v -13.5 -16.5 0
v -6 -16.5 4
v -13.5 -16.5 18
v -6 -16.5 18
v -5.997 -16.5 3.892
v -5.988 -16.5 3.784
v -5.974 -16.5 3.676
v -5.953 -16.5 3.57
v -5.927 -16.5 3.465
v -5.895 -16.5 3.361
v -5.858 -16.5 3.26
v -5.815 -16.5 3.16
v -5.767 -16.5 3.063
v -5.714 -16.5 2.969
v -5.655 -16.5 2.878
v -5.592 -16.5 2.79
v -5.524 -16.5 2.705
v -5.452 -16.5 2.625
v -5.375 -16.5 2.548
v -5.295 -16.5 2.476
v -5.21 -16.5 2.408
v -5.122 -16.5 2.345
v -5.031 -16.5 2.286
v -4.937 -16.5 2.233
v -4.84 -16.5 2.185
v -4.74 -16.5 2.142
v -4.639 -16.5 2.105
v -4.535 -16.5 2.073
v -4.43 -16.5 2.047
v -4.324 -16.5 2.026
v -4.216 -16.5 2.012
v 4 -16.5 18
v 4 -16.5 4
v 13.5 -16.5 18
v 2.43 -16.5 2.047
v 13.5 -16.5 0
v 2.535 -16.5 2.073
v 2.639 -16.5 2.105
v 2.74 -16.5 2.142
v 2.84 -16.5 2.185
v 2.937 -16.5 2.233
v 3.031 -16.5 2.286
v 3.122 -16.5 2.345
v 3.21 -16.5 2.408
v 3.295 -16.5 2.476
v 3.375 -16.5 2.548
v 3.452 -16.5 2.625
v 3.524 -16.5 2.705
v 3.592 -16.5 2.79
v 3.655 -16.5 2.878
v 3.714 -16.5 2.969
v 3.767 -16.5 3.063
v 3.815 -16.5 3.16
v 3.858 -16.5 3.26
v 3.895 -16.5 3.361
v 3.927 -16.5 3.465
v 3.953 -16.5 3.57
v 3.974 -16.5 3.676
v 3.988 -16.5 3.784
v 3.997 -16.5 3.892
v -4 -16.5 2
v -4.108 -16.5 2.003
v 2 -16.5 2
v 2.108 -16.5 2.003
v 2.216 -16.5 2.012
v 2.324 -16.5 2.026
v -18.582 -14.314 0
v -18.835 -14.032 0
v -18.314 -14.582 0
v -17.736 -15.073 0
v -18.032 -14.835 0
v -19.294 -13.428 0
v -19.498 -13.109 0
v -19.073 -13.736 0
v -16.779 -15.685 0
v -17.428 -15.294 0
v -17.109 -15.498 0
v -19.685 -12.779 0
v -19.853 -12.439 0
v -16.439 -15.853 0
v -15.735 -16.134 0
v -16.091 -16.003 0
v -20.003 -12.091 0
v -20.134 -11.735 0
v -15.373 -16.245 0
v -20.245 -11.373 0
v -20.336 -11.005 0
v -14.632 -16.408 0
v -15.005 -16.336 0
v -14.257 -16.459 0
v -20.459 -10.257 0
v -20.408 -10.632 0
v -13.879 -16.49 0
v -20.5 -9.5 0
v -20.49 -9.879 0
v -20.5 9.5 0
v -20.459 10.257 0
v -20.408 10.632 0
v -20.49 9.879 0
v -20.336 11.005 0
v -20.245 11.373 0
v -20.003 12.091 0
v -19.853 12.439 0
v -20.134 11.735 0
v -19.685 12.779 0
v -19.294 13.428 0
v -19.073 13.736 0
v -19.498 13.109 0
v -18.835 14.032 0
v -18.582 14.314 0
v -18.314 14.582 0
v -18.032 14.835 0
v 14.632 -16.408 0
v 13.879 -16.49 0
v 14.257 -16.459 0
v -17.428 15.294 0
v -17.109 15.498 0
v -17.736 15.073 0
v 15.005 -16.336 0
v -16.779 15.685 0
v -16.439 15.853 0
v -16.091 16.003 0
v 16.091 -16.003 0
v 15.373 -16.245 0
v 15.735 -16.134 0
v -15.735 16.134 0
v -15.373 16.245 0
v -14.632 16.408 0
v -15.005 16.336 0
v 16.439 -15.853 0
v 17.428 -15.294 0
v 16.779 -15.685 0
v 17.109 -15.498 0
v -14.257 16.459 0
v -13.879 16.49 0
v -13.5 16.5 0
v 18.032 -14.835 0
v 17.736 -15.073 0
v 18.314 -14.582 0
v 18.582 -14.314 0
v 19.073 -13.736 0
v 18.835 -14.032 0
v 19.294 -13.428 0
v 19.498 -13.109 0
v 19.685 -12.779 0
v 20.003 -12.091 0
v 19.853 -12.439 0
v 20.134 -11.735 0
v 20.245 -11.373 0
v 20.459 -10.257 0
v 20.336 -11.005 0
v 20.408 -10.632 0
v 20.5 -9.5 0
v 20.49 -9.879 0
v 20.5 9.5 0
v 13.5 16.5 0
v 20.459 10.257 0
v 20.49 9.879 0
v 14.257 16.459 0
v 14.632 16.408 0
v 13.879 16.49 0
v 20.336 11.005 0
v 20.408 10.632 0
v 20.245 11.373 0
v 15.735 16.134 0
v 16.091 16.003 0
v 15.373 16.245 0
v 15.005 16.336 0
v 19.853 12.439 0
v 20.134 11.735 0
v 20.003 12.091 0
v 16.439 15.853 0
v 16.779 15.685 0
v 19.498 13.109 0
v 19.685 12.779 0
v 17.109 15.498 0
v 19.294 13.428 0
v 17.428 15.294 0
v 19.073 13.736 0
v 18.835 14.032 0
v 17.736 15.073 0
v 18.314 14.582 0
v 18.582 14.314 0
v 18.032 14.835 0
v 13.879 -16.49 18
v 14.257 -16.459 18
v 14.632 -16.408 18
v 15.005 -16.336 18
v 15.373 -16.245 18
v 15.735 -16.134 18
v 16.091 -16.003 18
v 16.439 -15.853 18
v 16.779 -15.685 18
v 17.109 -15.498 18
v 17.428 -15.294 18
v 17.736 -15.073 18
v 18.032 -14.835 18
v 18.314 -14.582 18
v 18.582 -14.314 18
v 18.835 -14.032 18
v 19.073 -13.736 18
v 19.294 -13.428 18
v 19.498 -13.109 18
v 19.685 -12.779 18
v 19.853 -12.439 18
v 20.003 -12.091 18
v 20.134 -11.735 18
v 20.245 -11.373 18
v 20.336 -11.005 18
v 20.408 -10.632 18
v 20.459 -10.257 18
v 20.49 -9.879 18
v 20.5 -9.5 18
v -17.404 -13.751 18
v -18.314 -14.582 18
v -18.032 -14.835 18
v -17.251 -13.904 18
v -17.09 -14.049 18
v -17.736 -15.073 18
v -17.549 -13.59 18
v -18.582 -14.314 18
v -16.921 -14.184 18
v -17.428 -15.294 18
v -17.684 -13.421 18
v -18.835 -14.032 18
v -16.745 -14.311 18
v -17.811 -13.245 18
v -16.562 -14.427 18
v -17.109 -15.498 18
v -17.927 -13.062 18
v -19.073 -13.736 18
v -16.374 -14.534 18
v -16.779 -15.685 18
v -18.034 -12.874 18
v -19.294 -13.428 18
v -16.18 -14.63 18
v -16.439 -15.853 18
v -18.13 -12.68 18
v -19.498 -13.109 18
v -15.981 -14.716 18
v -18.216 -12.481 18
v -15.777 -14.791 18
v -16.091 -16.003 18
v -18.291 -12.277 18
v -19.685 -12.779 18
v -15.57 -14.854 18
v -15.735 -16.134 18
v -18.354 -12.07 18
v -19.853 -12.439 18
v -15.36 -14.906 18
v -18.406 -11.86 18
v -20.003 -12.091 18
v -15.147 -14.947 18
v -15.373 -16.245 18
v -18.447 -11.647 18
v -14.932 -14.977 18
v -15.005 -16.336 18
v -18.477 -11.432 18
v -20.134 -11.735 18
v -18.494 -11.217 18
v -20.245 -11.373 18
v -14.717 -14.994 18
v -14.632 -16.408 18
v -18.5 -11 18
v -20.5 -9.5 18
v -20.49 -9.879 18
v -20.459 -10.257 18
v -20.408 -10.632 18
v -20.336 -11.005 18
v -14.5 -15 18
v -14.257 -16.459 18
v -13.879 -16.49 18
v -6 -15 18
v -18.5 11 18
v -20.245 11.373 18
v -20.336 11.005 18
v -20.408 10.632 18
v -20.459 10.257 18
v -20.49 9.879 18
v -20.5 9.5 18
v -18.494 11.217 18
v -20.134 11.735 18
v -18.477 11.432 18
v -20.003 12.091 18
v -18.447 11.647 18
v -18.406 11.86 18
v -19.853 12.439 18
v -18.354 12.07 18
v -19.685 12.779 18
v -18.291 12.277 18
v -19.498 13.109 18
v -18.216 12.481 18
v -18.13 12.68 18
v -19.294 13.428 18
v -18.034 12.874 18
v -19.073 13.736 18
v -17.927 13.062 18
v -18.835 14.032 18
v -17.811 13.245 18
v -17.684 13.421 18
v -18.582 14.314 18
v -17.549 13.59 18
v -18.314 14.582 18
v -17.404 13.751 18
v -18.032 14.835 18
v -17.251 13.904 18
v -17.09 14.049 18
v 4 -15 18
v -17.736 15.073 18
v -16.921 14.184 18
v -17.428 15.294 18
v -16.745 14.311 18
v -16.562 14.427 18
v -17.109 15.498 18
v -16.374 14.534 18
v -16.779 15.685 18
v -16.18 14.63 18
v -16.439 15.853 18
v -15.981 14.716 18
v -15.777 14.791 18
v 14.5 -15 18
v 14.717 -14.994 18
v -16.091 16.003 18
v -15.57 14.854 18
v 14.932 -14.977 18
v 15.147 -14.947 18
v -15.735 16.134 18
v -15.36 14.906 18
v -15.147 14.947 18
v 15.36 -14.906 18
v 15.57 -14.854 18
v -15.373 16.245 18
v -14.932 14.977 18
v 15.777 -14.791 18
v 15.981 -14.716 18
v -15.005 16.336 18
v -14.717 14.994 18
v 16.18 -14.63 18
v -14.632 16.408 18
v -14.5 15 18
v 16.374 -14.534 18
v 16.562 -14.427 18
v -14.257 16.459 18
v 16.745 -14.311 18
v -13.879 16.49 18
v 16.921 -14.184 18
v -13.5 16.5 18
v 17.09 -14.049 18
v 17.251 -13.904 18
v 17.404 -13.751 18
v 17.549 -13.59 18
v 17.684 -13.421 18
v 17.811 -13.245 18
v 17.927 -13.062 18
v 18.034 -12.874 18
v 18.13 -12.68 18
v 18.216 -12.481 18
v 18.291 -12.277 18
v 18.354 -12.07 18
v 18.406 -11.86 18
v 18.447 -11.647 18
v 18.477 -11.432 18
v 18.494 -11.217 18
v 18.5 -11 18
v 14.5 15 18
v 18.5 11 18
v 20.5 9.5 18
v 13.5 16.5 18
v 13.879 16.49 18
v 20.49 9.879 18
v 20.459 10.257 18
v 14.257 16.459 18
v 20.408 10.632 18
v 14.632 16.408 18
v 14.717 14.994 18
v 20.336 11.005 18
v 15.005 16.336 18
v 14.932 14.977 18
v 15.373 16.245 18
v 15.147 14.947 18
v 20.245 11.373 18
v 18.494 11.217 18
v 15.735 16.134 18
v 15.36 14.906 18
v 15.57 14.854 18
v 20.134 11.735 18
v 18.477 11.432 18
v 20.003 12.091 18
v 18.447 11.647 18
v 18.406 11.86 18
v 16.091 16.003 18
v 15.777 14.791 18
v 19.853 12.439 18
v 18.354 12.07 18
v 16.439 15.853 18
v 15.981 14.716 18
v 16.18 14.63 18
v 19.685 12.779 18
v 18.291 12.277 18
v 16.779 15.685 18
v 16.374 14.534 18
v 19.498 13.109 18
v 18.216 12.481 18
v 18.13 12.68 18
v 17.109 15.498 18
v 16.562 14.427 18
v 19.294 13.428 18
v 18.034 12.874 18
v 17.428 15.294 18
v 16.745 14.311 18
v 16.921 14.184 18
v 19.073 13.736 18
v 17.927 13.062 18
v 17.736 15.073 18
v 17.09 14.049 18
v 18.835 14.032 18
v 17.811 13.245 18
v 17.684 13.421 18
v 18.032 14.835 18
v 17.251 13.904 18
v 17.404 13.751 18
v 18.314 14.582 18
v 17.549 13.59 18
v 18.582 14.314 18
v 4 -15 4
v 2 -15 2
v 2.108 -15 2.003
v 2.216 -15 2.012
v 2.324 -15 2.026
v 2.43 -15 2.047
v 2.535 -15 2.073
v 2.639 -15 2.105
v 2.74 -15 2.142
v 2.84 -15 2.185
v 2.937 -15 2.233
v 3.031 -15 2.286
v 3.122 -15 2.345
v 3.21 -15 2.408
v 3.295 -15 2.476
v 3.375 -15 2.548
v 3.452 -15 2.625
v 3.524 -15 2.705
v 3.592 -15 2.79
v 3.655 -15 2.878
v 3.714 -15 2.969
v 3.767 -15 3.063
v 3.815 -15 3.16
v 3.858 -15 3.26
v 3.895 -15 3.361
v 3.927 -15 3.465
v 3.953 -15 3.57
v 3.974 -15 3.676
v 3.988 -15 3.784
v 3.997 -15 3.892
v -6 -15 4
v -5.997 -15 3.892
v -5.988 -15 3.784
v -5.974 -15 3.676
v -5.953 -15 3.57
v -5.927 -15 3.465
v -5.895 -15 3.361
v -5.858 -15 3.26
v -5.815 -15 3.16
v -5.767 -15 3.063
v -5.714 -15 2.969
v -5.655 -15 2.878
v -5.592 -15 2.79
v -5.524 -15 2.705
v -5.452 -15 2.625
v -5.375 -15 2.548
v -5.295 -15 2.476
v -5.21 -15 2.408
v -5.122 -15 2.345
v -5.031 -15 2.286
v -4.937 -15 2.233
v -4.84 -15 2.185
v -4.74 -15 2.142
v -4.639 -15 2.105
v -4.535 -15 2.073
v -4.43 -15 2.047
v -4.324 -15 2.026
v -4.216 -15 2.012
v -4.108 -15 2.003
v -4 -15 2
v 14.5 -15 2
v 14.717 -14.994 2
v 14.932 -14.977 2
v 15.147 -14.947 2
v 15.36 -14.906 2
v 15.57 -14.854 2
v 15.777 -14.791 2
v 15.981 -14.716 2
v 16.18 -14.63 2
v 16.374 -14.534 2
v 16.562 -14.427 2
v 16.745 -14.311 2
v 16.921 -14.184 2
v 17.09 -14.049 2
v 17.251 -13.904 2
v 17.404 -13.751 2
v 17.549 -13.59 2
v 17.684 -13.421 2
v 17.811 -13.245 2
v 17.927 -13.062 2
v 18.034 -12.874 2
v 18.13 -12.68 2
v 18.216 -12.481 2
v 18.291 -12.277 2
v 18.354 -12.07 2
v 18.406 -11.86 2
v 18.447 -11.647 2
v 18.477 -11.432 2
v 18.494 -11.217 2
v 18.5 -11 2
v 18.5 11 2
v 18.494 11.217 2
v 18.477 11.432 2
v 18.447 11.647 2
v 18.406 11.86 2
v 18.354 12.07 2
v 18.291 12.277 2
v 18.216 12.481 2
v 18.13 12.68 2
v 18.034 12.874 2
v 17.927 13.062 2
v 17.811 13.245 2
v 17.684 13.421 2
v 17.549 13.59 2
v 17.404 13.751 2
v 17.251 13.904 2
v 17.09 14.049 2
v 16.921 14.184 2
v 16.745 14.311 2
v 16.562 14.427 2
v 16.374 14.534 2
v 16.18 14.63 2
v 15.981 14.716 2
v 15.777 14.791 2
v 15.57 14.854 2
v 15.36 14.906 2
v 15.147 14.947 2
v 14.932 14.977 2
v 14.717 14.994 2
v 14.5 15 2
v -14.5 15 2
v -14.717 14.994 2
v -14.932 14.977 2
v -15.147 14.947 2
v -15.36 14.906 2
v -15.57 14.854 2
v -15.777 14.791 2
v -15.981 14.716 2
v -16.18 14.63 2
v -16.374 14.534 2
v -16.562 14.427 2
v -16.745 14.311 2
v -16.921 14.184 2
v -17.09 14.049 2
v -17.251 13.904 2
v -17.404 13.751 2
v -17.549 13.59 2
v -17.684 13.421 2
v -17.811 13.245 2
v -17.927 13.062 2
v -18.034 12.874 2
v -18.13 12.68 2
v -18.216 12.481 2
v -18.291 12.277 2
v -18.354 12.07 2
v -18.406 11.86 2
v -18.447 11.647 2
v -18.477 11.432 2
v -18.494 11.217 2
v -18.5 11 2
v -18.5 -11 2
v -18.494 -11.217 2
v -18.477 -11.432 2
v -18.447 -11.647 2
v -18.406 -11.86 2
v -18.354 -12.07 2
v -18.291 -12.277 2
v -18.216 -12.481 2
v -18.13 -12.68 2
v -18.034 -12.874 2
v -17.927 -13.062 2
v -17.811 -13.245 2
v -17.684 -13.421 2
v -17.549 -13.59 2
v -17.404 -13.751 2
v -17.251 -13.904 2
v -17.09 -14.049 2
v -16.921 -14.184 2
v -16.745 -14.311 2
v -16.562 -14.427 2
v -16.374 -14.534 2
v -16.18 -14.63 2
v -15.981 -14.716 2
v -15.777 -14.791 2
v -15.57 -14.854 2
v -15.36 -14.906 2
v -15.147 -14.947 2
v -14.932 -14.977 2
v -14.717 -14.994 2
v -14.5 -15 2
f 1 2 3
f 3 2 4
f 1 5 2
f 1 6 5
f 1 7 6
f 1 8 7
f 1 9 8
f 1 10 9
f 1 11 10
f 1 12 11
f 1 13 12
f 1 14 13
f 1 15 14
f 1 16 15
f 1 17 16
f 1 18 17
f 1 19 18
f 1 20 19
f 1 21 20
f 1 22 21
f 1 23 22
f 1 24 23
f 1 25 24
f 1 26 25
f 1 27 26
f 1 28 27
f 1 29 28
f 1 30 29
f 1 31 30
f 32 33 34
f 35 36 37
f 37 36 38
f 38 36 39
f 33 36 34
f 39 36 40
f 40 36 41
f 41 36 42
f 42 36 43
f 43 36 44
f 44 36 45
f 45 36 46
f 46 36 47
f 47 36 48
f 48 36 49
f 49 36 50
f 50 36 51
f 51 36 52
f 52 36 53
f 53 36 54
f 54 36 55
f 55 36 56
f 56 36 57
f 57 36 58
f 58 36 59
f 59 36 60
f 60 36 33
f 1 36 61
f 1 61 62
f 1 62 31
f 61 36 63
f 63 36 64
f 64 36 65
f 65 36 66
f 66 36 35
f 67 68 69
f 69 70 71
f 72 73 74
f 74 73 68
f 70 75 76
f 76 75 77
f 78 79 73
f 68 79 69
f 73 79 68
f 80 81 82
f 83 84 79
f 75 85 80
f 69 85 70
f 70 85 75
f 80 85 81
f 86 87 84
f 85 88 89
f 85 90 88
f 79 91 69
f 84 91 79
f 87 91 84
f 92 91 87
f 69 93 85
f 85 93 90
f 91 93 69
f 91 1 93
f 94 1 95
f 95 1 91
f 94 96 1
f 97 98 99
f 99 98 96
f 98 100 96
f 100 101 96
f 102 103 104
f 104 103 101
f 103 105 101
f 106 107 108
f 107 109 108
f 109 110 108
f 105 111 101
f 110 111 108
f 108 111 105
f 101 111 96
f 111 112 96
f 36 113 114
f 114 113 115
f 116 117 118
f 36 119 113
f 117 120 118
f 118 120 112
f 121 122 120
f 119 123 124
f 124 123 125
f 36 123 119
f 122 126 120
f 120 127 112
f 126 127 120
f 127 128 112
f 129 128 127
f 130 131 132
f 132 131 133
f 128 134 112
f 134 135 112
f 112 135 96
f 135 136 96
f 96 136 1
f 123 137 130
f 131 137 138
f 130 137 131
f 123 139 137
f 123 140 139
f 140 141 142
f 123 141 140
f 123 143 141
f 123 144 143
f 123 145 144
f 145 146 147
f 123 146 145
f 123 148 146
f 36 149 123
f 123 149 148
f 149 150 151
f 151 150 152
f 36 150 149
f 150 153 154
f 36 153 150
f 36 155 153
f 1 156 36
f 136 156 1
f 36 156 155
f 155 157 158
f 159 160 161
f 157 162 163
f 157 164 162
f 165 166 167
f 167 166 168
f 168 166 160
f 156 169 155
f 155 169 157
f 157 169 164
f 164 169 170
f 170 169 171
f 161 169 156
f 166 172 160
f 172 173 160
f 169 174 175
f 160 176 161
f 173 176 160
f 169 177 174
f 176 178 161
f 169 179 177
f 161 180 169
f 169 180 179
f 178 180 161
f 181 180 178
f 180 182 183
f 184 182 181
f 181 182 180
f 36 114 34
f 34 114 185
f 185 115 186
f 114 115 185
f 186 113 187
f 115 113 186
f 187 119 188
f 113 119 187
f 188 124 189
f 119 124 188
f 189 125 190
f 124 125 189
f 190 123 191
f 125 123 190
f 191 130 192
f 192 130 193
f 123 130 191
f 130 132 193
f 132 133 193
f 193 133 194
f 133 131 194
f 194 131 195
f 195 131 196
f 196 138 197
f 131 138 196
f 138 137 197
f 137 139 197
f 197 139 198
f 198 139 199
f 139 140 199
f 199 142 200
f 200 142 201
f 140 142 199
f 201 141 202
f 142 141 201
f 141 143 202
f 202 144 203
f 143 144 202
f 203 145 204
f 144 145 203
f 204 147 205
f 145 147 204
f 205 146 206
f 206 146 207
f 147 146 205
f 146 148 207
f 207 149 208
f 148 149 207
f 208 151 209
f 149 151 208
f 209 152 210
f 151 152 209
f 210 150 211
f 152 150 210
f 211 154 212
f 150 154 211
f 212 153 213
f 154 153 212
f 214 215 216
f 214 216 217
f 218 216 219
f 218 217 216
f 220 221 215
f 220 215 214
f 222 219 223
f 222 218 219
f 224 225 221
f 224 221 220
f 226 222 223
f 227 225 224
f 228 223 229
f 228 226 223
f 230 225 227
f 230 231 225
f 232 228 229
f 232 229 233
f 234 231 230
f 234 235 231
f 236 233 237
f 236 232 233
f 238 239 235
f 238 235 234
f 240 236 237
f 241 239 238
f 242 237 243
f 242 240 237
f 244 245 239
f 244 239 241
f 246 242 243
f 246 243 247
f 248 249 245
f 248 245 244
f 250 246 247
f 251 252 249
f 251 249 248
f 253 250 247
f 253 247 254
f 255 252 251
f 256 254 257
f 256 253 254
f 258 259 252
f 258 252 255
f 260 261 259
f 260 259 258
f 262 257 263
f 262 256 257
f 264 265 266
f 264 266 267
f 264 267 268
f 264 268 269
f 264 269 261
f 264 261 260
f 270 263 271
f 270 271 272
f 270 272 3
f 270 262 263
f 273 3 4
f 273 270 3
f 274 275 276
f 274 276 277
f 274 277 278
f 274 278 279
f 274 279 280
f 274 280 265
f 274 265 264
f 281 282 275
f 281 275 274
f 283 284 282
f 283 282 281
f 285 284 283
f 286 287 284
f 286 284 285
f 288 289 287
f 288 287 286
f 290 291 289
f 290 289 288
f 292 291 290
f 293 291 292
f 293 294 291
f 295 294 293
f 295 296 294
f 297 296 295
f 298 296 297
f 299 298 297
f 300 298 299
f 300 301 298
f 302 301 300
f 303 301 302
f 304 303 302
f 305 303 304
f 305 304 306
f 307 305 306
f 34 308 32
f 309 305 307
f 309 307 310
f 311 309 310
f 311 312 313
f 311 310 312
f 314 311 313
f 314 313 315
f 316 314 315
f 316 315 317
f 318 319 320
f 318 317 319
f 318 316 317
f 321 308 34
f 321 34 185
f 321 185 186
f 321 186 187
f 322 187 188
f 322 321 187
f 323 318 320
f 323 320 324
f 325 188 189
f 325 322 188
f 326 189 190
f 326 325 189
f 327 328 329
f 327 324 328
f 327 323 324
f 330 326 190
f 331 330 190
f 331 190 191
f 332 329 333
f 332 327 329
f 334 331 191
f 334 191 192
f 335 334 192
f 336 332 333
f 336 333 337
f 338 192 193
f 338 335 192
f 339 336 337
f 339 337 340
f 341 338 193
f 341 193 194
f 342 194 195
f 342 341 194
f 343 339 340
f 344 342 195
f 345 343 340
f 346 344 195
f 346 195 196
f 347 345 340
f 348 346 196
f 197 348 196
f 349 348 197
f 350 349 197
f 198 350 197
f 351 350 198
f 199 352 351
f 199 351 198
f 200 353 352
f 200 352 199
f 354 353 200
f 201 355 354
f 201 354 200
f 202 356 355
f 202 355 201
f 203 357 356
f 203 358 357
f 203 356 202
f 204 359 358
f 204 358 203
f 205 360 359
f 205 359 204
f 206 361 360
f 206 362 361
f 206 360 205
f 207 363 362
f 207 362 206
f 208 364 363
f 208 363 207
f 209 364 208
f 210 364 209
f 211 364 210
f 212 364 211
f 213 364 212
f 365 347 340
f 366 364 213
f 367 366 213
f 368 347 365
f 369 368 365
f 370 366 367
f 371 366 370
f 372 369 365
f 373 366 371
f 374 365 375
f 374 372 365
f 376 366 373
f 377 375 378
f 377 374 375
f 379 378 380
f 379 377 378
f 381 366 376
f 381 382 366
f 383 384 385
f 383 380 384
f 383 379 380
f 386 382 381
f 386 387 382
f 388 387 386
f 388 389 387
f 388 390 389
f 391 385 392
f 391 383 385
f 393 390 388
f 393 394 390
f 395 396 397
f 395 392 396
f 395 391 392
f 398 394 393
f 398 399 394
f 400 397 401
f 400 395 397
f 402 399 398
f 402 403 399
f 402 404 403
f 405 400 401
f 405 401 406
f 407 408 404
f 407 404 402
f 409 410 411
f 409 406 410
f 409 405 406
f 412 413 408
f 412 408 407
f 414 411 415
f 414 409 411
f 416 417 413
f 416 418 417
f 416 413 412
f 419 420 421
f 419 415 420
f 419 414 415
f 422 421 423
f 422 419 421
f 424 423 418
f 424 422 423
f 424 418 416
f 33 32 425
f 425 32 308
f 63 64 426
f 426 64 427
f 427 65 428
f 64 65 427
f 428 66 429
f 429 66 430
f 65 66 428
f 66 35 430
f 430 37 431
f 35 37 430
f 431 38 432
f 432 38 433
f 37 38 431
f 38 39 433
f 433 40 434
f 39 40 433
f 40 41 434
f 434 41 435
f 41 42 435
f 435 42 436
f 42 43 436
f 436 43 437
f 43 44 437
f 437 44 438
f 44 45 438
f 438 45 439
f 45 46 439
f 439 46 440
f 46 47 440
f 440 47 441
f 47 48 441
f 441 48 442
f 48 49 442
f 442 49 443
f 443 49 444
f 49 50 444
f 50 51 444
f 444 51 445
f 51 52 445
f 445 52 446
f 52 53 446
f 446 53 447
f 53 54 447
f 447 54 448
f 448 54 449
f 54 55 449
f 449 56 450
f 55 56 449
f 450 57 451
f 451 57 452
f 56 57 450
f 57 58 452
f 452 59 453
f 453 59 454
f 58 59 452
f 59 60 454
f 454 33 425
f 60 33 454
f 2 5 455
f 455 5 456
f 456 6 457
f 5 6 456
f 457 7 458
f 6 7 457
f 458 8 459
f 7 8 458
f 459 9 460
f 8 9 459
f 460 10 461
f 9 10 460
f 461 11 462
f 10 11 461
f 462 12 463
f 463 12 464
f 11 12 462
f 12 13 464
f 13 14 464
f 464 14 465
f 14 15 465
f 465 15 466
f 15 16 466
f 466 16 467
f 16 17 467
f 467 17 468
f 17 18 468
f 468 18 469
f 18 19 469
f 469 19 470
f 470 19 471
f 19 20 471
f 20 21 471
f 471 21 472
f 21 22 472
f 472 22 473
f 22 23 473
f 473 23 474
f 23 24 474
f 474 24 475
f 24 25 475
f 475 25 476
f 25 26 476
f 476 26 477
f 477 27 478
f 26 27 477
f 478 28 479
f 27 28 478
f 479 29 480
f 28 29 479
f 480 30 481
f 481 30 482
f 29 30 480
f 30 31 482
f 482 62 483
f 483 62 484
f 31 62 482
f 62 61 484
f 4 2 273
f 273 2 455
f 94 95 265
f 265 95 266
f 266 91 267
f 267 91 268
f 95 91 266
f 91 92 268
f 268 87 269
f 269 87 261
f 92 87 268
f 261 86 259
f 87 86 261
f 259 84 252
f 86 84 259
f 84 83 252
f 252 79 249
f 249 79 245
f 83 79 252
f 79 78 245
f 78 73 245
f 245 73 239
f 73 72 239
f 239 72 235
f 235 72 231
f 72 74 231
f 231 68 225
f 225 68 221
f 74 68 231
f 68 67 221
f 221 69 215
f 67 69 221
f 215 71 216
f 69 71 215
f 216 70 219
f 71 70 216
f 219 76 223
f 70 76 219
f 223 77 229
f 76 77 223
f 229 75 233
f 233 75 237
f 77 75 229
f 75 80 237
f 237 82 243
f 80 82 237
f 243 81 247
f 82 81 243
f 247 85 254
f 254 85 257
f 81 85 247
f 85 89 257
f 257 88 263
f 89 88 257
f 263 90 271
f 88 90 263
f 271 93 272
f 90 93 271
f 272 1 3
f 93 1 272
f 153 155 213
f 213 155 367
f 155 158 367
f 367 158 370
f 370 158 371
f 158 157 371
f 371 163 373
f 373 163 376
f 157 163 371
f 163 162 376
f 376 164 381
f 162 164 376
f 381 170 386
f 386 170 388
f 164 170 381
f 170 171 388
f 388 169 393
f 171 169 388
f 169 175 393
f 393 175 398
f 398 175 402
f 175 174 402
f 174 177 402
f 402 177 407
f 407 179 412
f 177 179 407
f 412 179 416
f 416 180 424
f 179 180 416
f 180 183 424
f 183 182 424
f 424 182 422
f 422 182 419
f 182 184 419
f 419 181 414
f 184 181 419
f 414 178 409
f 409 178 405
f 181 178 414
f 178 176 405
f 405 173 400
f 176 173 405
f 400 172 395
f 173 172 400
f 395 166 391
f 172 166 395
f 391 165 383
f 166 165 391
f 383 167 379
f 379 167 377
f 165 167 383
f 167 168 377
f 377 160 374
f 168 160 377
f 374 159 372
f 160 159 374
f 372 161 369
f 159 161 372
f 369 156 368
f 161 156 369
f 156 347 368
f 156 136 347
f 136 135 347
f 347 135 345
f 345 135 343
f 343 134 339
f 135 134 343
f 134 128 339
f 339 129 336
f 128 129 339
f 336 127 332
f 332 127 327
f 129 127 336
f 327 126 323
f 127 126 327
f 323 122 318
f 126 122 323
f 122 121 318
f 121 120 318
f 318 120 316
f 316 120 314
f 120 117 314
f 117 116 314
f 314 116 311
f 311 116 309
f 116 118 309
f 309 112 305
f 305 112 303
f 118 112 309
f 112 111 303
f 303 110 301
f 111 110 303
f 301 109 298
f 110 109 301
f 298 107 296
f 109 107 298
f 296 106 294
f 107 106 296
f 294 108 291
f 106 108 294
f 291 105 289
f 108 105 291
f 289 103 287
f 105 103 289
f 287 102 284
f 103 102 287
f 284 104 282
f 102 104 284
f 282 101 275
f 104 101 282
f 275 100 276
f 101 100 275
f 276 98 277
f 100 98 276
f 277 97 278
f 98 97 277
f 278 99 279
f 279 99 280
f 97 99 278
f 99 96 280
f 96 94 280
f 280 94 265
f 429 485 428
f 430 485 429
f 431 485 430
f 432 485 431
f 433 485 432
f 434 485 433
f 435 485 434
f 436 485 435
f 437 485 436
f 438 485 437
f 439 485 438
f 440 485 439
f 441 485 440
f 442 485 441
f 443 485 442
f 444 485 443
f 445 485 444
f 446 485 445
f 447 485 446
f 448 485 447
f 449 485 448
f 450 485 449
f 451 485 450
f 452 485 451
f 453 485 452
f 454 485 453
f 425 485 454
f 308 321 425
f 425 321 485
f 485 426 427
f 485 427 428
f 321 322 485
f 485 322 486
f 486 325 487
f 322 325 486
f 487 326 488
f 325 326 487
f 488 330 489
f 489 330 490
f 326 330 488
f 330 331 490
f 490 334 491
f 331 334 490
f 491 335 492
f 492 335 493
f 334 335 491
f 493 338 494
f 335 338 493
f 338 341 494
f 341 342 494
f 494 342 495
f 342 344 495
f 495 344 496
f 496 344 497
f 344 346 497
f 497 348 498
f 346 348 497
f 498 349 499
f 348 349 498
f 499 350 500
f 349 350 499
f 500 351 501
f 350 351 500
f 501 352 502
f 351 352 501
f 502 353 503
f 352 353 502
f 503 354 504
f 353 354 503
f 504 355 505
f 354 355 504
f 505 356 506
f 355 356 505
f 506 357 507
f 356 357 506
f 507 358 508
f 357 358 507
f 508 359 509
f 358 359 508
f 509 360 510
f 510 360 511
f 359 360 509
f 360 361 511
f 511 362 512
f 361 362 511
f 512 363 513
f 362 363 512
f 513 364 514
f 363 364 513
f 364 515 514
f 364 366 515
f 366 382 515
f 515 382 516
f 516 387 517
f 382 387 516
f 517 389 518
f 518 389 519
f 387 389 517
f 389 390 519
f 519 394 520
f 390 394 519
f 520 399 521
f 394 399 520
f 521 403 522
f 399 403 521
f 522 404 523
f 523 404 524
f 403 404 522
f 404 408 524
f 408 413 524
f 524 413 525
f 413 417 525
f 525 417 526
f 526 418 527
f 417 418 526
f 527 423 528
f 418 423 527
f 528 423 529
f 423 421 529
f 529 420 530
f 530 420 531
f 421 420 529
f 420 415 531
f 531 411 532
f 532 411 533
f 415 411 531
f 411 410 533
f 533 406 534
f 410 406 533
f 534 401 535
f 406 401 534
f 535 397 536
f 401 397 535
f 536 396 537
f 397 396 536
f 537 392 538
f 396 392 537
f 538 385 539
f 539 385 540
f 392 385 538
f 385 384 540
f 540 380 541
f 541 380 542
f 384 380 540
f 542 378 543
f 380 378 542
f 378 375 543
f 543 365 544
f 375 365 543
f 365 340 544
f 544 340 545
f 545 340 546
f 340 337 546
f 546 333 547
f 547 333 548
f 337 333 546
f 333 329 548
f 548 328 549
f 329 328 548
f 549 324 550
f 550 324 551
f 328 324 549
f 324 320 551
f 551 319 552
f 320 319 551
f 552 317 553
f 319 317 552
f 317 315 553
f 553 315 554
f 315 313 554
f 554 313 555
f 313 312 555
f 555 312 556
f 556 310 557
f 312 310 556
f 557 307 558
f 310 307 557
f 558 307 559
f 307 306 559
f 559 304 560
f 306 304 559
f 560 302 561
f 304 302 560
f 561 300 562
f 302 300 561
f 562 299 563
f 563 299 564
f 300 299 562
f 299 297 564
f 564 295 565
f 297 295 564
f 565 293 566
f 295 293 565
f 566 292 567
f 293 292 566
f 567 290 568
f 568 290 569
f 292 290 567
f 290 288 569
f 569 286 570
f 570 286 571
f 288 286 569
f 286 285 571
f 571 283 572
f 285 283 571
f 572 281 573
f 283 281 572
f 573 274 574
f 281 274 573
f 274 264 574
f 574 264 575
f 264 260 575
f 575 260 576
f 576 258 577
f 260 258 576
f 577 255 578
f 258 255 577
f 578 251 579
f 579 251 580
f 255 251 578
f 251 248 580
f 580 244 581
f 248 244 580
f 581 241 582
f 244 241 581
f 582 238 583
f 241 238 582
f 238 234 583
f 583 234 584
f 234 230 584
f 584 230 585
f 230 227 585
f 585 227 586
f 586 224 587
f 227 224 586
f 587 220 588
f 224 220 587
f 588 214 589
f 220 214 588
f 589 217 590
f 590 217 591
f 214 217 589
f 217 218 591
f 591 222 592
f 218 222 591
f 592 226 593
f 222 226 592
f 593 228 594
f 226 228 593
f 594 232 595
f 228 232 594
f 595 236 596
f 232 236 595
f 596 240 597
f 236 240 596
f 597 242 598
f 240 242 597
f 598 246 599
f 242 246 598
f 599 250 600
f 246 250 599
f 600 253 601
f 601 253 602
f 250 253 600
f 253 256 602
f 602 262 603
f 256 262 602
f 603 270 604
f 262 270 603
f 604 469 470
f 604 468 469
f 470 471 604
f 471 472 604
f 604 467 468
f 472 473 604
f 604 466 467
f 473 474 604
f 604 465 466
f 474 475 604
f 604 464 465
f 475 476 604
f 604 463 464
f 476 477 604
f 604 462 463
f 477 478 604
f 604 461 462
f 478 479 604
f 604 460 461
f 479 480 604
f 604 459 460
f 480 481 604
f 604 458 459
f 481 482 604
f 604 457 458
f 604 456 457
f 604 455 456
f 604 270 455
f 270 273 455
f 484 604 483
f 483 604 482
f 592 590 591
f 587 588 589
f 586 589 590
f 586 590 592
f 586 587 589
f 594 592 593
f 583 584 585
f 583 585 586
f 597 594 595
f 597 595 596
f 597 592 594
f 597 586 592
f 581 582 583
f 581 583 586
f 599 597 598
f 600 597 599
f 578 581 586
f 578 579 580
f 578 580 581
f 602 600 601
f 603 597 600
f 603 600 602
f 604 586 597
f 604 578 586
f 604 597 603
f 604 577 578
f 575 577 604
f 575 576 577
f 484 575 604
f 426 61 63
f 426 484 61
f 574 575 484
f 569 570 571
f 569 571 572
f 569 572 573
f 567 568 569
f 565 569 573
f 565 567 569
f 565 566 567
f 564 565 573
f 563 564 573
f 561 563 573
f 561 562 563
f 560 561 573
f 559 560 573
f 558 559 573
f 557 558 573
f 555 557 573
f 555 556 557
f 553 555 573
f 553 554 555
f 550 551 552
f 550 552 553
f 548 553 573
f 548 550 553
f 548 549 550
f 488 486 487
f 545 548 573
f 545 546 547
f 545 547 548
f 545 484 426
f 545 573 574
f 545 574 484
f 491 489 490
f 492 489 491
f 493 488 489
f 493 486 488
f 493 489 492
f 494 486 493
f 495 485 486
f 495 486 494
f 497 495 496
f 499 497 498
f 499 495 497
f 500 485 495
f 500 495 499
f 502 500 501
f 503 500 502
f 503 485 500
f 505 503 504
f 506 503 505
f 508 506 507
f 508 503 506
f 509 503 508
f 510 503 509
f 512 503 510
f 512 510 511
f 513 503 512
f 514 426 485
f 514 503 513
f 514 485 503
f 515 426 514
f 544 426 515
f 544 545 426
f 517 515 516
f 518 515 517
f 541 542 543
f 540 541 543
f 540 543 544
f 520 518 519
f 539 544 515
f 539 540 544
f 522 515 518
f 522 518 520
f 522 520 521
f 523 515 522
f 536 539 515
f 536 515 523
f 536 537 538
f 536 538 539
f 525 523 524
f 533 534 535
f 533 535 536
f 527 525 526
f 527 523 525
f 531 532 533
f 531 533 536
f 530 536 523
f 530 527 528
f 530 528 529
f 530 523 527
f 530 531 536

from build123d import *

# Parameters (mm, degrees)
PAD_DEPTH       = 18
POCKET_DEPTH    = 16
POCKET001_DEPTH = 5


with BuildPart() as part:
    # Sketch → Pad (new body)
    with BuildSketch(Plane.XY):
        with BuildLine():
            Line((-13.5, -16.5), (13.5, -16.5))
            ThreePointArc((13.5, -16.5), (18.449747, -14.449747), (20.5, -9.5))
            Line((20.5, -9.5), (20.5, 9.5))
            ThreePointArc((20.5, 9.5), (18.449747, 14.449747), (13.5, 16.5))
            Line((13.5, 16.5), (-13.5, 16.5))
            ThreePointArc((-13.5, 16.5), (-18.449747, 14.449747), (-20.5, 9.5))
            Line((-20.5, 9.5), (-20.5, -9.5))
            ThreePointArc((-20.5, -9.5), (-18.449747, -14.449747), (-13.5, -16.5))
        make_face()
    extrude(amount=PAD_DEPTH)

    # Sketch001 (on Face10 of Pad) → Pocket (cut)
    with BuildSketch(Plane.XY.offset(18)):
        with BuildLine():
            Line((-18.5, 11), (-18.5, -11))
            ThreePointArc((-18.5, -11), (-17.328427, -13.828427), (-14.5, -15))
            Line((-14.5, -15), (14.5, -15))
            ThreePointArc((14.5, -15), (17.328427, -13.828427), (18.5, -11))
            Line((18.5, -11), (18.5, 11))
            ThreePointArc((18.5, 11), (17.328427, 13.828427), (14.5, 15))
            Line((14.5, 15), (-14.5, 15))
            ThreePointArc((-14.5, 15), (-17.328427, 13.828427), (-18.5, 11))
        make_face()
    extrude(amount=-POCKET_DEPTH, mode=Mode.SUBTRACT)

    # Sketch002 (on Face1 of Pocket) → Pocket001 (cut)
    with BuildSketch(Plane.XZ.offset(16.5)):
        with BuildLine():
            Line((-6, 24), (-6, 4))
            ThreePointArc((-6, 4), (-5.414214, 2.585786), (-4, 2))
            Line((-4, 2), (2, 2))
            ThreePointArc((2, 2), (3.414214, 2.585786), (4, 4))
            Line((4, 4), (4, 24))
            ThreePointArc((4, 24), (3.414214, 25.414214), (2, 26))
            Line((2, 26), (-4, 26))
            ThreePointArc((-4, 26), (-5.414214, 25.414214), (-6, 24))
        make_face()
    extrude(amount=-POCKET001_DEPTH, mode=Mode.SUBTRACT)


solid = part.part
